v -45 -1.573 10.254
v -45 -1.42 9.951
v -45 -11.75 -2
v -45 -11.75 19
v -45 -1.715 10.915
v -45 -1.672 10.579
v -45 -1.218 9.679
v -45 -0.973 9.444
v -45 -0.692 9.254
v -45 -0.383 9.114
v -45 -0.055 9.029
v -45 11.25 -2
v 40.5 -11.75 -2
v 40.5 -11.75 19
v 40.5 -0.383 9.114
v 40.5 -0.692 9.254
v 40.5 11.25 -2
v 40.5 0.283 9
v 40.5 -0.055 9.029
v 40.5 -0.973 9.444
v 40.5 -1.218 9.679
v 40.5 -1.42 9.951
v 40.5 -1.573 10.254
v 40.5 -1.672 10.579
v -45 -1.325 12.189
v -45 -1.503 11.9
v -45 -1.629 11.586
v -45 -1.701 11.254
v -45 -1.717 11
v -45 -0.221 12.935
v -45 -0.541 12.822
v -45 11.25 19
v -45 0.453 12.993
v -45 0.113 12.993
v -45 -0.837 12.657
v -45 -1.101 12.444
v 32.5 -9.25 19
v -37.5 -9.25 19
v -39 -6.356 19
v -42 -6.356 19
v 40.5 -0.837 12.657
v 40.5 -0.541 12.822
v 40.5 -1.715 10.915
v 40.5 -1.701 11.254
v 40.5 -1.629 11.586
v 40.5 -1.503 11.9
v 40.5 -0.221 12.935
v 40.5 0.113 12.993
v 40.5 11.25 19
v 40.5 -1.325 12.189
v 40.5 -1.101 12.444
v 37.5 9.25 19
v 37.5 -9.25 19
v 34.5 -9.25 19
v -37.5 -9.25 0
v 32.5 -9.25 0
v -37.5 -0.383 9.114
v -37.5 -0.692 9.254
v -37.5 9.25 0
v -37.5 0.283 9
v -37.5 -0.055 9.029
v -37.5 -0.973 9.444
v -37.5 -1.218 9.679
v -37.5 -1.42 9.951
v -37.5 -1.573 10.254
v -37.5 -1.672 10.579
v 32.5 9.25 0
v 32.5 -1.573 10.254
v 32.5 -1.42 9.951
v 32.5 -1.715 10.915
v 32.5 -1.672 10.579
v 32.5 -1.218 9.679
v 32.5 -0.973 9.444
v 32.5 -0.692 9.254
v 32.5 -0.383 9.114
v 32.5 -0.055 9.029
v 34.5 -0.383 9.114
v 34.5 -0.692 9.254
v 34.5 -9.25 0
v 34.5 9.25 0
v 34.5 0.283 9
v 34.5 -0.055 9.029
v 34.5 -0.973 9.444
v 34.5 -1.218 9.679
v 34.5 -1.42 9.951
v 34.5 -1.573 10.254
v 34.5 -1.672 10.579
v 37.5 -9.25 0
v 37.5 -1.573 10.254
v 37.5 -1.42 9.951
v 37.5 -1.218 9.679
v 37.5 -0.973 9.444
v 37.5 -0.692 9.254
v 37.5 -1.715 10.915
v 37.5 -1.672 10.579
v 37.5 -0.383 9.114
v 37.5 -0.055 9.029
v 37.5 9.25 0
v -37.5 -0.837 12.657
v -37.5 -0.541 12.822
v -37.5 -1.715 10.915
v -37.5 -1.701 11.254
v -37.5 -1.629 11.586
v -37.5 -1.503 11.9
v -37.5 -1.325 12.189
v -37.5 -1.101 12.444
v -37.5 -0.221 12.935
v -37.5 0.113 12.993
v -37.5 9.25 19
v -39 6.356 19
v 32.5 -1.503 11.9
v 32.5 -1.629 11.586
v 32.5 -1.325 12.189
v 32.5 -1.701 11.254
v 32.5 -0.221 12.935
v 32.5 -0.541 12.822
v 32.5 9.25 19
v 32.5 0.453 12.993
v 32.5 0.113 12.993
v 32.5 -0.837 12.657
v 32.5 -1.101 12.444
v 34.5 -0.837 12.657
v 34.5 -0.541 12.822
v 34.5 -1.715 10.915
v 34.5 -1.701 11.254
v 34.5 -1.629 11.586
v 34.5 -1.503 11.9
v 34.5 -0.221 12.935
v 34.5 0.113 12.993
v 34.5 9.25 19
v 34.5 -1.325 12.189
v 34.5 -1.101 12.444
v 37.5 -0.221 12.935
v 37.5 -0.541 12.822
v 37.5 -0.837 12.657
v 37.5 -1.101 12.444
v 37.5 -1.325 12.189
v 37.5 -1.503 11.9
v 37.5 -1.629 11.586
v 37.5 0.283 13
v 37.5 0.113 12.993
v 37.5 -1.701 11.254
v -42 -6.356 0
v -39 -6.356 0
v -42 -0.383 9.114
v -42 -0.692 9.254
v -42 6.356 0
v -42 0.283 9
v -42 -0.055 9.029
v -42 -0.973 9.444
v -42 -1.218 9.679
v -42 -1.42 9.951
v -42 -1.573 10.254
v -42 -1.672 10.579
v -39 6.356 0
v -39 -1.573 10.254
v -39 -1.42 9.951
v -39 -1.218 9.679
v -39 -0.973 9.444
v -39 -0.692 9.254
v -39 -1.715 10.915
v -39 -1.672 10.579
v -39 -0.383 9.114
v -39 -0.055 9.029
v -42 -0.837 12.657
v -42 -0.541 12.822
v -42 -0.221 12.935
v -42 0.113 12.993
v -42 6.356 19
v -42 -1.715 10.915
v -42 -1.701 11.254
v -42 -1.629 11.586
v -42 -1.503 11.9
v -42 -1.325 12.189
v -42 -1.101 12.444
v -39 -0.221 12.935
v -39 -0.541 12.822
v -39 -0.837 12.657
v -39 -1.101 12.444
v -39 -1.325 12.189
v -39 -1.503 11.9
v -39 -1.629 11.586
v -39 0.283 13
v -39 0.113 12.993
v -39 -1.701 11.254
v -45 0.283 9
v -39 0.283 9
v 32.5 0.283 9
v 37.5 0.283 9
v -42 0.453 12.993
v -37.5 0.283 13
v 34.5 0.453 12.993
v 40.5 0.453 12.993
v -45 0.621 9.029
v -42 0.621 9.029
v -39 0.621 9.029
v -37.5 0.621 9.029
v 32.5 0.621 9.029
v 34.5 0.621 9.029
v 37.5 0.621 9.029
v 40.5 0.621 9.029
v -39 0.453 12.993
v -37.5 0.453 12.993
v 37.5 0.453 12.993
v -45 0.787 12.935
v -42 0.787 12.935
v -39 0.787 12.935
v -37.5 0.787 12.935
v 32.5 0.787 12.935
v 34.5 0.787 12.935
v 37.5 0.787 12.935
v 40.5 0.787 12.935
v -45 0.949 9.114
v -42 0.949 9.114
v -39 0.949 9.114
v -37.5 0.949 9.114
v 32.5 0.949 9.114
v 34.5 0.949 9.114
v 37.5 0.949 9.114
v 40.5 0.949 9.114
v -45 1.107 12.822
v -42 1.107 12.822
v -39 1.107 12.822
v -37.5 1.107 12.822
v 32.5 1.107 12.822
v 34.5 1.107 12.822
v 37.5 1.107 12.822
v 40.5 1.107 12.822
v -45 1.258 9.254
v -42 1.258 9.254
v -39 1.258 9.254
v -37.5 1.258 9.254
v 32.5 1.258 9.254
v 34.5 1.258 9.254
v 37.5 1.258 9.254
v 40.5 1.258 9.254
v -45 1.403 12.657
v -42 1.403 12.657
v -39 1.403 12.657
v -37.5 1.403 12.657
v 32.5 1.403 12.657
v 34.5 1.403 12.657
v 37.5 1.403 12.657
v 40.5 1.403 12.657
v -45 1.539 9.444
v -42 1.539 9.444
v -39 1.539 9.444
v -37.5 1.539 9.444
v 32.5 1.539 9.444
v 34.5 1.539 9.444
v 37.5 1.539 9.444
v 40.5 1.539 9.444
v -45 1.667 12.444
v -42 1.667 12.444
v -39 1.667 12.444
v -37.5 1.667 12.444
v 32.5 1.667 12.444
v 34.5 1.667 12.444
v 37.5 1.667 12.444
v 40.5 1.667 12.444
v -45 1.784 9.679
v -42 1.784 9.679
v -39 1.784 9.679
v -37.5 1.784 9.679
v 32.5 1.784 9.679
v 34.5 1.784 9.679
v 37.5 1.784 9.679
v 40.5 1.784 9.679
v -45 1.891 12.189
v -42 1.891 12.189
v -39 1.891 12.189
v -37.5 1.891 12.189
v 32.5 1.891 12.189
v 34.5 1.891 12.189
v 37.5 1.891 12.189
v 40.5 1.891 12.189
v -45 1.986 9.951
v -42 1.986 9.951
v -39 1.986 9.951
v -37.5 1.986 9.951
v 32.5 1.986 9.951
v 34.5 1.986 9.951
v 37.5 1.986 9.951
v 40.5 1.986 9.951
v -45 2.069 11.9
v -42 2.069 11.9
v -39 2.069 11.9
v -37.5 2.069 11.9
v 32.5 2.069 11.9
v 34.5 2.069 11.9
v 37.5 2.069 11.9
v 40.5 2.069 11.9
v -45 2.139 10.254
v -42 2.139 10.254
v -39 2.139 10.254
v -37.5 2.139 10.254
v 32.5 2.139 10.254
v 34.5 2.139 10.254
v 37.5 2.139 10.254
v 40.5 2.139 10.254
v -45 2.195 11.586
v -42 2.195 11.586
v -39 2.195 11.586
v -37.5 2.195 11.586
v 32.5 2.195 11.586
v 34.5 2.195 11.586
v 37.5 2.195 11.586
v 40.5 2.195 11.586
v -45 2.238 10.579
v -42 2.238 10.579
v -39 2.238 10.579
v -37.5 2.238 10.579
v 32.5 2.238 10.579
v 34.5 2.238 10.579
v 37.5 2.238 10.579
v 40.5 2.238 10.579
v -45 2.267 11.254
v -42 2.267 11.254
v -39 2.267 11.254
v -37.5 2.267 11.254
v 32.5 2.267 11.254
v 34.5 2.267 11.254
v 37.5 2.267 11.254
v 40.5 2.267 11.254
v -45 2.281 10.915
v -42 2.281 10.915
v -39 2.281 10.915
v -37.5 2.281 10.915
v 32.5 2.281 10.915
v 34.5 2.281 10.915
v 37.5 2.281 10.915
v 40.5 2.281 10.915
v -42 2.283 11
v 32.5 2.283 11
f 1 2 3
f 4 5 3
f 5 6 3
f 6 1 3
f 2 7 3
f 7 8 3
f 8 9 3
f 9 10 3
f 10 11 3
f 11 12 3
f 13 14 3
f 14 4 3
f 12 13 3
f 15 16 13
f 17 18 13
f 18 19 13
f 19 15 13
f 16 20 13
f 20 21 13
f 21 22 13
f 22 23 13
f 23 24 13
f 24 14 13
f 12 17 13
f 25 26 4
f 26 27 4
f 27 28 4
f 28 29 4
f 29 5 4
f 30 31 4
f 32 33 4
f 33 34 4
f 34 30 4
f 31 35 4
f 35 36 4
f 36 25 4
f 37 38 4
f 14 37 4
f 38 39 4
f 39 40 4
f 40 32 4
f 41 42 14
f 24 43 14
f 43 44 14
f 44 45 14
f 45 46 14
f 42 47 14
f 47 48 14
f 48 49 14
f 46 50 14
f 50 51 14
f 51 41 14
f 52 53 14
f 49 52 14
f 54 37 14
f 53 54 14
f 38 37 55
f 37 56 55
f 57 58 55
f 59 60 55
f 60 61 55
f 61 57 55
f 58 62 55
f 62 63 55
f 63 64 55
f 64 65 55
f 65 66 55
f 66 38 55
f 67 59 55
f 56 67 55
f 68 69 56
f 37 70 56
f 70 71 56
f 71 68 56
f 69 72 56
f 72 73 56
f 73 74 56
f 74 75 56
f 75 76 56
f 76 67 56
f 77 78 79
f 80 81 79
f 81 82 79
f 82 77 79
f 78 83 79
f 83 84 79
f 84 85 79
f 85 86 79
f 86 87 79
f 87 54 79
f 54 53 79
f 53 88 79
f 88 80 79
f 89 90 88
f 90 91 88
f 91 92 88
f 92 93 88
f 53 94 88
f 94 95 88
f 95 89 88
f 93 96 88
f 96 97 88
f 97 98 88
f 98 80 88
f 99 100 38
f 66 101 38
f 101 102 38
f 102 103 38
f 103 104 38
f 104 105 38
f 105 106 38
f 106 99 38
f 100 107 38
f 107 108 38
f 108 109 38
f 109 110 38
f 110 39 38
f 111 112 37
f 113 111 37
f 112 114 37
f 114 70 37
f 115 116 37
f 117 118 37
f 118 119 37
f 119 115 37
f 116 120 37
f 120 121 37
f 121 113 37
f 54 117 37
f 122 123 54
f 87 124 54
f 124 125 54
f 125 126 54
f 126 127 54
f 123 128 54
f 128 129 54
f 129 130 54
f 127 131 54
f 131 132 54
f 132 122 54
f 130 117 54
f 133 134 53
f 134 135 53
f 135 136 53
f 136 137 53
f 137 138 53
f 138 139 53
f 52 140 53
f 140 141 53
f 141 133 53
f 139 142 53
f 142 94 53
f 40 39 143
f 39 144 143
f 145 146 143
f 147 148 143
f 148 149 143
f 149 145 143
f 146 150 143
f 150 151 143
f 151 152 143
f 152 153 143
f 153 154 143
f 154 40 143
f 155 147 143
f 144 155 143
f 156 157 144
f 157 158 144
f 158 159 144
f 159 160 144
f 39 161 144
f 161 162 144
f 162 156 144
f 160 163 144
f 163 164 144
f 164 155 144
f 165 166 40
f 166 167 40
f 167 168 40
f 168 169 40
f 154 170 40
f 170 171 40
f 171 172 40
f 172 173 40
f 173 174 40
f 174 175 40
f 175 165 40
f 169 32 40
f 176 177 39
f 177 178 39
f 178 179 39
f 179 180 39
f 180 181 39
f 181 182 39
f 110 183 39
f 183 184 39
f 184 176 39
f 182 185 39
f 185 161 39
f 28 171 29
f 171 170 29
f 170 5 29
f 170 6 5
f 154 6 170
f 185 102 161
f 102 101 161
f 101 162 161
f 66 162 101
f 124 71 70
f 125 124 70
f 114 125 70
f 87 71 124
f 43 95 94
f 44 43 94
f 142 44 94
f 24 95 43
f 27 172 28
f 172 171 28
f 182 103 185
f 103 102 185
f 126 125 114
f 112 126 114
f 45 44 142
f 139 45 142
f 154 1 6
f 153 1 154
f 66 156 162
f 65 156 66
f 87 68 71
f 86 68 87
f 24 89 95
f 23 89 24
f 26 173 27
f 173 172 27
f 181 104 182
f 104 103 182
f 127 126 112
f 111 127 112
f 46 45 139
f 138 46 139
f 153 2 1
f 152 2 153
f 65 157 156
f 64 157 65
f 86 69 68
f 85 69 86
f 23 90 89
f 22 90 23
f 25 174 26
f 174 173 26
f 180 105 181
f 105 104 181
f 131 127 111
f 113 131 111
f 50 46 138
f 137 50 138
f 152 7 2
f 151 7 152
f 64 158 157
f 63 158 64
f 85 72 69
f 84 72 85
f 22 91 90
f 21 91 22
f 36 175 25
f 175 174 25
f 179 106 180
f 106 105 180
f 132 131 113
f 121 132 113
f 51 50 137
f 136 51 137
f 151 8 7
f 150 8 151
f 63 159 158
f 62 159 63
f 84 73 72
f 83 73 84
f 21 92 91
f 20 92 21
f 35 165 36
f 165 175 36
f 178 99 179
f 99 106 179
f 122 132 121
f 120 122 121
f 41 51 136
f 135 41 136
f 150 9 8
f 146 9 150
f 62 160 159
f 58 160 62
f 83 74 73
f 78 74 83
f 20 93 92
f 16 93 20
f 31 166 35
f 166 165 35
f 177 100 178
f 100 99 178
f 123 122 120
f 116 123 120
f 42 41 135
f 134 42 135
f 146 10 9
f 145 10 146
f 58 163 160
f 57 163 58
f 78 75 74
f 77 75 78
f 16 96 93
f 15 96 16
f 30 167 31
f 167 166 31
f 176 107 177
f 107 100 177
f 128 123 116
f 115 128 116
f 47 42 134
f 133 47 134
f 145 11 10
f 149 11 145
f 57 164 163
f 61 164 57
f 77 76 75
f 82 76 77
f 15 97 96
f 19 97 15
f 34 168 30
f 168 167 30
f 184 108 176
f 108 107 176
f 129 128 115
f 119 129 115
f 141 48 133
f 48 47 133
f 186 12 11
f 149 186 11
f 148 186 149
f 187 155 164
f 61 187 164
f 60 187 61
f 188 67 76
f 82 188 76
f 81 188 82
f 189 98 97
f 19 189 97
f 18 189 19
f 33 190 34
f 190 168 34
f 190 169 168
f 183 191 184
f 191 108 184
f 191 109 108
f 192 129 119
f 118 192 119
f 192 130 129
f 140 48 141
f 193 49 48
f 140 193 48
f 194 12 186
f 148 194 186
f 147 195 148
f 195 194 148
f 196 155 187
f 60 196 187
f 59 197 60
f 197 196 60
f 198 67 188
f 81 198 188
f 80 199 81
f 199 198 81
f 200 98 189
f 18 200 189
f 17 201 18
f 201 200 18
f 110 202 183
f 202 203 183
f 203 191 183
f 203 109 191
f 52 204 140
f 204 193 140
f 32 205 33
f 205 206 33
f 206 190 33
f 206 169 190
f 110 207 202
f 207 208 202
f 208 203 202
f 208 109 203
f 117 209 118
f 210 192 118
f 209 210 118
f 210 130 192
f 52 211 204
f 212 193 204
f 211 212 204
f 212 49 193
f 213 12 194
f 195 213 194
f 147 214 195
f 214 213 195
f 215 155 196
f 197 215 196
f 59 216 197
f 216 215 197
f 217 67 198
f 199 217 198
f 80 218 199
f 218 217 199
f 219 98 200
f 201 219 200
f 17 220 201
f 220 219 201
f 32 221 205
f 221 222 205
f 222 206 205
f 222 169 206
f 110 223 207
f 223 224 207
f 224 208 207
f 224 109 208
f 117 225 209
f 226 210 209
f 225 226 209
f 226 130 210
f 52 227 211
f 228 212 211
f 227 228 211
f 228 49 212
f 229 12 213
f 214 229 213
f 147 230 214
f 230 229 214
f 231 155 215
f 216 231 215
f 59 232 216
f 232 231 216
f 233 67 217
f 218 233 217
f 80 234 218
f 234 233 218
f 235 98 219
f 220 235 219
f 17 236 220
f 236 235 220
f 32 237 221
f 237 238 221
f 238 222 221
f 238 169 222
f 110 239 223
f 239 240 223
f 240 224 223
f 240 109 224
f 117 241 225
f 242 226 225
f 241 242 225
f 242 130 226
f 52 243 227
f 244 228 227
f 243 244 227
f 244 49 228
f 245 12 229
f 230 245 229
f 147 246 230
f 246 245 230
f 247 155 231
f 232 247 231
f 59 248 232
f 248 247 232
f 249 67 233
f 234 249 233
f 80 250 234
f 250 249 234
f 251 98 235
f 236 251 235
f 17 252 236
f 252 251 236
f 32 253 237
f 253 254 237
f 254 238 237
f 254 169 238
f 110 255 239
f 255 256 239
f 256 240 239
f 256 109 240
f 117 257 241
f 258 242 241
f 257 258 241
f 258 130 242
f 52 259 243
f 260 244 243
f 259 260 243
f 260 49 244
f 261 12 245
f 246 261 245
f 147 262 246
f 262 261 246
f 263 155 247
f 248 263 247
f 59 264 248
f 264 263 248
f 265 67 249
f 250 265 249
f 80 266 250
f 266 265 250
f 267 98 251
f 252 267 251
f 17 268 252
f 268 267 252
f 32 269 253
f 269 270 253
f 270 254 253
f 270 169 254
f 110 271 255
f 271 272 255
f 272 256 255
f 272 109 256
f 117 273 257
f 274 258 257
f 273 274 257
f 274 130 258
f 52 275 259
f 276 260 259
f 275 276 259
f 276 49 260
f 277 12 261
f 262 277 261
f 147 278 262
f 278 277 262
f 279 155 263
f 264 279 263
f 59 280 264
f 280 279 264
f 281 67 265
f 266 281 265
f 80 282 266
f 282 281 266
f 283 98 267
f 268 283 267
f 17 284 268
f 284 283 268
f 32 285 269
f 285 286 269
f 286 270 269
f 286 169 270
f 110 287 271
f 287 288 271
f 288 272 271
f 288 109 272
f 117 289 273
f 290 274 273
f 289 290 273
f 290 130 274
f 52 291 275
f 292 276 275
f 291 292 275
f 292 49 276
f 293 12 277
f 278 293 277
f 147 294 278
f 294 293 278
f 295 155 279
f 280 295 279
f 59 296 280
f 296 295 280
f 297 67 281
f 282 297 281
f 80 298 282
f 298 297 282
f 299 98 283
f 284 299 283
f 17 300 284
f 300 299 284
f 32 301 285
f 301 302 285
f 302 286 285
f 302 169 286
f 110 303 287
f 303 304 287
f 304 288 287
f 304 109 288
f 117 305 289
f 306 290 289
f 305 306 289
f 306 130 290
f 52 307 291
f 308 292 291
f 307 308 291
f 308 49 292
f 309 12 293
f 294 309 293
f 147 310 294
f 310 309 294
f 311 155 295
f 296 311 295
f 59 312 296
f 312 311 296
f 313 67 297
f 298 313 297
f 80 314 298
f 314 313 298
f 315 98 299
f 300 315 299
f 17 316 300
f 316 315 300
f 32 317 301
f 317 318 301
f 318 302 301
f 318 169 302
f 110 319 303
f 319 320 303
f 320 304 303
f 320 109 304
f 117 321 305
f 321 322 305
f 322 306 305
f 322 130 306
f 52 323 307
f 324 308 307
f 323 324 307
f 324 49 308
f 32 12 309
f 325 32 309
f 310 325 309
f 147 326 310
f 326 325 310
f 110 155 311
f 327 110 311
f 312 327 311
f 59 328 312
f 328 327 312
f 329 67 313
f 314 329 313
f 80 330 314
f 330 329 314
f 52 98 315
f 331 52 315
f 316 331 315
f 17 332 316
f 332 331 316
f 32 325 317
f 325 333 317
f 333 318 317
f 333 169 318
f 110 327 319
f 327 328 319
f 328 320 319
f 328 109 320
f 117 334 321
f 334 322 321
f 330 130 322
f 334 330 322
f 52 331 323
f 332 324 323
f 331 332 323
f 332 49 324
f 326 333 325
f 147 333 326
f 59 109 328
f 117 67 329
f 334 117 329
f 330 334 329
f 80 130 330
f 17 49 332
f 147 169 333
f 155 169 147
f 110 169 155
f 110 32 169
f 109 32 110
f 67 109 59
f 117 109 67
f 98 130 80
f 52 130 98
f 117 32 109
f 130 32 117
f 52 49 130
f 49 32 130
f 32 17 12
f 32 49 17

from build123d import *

# Parameters (mm, degrees)
SKETCH_1_W          = 85.5
SKETCH_1_H          = 23
SKETCH_1_W_2        = 3
SKETCH_1_H_2        = 18.5
SKETCH_1_W_3        = 70
SKETCH_1_H_3        = 12.711442786
EXTRUDE_1_DEPTH     = 19
SKETCH_2_W          = 85.5
SKETCH_2_H          = 23
EXTRUDE_2_DEPTH     = 2
SKETCH_3_R          = 2
CUT_EXTRUDE_1_DEPTH = 97


with BuildPart() as part:
    # 草圖1 → 填料-伸長1 (new body)
    with BuildSketch(Plane.XY):
        with Locations((-2.25, -0.25)):
            Rectangle(SKETCH_1_W, SKETCH_1_H)
        with Locations((36, 0)):
            Rectangle(SKETCH_1_W_2, SKETCH_1_H_2, mode=Mode.SUBTRACT)
        with Locations((-2.5, 0)):
            Rectangle(SKETCH_1_W_3, SKETCH_1_H_2, mode=Mode.SUBTRACT)
        with Locations((-40.5, 0)):
            Rectangle(SKETCH_1_W_2, SKETCH_1_H_3, mode=Mode.SUBTRACT)
    extrude(amount=EXTRUDE_1_DEPTH)

    # 草圖2 → 填料-伸長2 (add)
    with BuildSketch(Plane(origin=(0, 0, 0), x_dir=(-1, 0, 0), z_dir=(0, 0, -1))):
        with Locations((2.25, -0.25)):
            Rectangle(SKETCH_2_W, SKETCH_2_H)
    extrude(amount=EXTRUDE_2_DEPTH)

    # 草圖3 → 除料-伸長1 (cut)
    with BuildSketch(Plane(origin=(40.5, 0, 0), x_dir=(0, 0, -1), z_dir=(1, 0, 0))):
        with Locations(Location((-11, 0.282979523, 0), (0, 0, 90))):
            Circle(SKETCH_3_R)
    extrude(amount=-CUT_EXTRUDE_1_DEPTH, mode=Mode.SUBTRACT)


solid = part.part
